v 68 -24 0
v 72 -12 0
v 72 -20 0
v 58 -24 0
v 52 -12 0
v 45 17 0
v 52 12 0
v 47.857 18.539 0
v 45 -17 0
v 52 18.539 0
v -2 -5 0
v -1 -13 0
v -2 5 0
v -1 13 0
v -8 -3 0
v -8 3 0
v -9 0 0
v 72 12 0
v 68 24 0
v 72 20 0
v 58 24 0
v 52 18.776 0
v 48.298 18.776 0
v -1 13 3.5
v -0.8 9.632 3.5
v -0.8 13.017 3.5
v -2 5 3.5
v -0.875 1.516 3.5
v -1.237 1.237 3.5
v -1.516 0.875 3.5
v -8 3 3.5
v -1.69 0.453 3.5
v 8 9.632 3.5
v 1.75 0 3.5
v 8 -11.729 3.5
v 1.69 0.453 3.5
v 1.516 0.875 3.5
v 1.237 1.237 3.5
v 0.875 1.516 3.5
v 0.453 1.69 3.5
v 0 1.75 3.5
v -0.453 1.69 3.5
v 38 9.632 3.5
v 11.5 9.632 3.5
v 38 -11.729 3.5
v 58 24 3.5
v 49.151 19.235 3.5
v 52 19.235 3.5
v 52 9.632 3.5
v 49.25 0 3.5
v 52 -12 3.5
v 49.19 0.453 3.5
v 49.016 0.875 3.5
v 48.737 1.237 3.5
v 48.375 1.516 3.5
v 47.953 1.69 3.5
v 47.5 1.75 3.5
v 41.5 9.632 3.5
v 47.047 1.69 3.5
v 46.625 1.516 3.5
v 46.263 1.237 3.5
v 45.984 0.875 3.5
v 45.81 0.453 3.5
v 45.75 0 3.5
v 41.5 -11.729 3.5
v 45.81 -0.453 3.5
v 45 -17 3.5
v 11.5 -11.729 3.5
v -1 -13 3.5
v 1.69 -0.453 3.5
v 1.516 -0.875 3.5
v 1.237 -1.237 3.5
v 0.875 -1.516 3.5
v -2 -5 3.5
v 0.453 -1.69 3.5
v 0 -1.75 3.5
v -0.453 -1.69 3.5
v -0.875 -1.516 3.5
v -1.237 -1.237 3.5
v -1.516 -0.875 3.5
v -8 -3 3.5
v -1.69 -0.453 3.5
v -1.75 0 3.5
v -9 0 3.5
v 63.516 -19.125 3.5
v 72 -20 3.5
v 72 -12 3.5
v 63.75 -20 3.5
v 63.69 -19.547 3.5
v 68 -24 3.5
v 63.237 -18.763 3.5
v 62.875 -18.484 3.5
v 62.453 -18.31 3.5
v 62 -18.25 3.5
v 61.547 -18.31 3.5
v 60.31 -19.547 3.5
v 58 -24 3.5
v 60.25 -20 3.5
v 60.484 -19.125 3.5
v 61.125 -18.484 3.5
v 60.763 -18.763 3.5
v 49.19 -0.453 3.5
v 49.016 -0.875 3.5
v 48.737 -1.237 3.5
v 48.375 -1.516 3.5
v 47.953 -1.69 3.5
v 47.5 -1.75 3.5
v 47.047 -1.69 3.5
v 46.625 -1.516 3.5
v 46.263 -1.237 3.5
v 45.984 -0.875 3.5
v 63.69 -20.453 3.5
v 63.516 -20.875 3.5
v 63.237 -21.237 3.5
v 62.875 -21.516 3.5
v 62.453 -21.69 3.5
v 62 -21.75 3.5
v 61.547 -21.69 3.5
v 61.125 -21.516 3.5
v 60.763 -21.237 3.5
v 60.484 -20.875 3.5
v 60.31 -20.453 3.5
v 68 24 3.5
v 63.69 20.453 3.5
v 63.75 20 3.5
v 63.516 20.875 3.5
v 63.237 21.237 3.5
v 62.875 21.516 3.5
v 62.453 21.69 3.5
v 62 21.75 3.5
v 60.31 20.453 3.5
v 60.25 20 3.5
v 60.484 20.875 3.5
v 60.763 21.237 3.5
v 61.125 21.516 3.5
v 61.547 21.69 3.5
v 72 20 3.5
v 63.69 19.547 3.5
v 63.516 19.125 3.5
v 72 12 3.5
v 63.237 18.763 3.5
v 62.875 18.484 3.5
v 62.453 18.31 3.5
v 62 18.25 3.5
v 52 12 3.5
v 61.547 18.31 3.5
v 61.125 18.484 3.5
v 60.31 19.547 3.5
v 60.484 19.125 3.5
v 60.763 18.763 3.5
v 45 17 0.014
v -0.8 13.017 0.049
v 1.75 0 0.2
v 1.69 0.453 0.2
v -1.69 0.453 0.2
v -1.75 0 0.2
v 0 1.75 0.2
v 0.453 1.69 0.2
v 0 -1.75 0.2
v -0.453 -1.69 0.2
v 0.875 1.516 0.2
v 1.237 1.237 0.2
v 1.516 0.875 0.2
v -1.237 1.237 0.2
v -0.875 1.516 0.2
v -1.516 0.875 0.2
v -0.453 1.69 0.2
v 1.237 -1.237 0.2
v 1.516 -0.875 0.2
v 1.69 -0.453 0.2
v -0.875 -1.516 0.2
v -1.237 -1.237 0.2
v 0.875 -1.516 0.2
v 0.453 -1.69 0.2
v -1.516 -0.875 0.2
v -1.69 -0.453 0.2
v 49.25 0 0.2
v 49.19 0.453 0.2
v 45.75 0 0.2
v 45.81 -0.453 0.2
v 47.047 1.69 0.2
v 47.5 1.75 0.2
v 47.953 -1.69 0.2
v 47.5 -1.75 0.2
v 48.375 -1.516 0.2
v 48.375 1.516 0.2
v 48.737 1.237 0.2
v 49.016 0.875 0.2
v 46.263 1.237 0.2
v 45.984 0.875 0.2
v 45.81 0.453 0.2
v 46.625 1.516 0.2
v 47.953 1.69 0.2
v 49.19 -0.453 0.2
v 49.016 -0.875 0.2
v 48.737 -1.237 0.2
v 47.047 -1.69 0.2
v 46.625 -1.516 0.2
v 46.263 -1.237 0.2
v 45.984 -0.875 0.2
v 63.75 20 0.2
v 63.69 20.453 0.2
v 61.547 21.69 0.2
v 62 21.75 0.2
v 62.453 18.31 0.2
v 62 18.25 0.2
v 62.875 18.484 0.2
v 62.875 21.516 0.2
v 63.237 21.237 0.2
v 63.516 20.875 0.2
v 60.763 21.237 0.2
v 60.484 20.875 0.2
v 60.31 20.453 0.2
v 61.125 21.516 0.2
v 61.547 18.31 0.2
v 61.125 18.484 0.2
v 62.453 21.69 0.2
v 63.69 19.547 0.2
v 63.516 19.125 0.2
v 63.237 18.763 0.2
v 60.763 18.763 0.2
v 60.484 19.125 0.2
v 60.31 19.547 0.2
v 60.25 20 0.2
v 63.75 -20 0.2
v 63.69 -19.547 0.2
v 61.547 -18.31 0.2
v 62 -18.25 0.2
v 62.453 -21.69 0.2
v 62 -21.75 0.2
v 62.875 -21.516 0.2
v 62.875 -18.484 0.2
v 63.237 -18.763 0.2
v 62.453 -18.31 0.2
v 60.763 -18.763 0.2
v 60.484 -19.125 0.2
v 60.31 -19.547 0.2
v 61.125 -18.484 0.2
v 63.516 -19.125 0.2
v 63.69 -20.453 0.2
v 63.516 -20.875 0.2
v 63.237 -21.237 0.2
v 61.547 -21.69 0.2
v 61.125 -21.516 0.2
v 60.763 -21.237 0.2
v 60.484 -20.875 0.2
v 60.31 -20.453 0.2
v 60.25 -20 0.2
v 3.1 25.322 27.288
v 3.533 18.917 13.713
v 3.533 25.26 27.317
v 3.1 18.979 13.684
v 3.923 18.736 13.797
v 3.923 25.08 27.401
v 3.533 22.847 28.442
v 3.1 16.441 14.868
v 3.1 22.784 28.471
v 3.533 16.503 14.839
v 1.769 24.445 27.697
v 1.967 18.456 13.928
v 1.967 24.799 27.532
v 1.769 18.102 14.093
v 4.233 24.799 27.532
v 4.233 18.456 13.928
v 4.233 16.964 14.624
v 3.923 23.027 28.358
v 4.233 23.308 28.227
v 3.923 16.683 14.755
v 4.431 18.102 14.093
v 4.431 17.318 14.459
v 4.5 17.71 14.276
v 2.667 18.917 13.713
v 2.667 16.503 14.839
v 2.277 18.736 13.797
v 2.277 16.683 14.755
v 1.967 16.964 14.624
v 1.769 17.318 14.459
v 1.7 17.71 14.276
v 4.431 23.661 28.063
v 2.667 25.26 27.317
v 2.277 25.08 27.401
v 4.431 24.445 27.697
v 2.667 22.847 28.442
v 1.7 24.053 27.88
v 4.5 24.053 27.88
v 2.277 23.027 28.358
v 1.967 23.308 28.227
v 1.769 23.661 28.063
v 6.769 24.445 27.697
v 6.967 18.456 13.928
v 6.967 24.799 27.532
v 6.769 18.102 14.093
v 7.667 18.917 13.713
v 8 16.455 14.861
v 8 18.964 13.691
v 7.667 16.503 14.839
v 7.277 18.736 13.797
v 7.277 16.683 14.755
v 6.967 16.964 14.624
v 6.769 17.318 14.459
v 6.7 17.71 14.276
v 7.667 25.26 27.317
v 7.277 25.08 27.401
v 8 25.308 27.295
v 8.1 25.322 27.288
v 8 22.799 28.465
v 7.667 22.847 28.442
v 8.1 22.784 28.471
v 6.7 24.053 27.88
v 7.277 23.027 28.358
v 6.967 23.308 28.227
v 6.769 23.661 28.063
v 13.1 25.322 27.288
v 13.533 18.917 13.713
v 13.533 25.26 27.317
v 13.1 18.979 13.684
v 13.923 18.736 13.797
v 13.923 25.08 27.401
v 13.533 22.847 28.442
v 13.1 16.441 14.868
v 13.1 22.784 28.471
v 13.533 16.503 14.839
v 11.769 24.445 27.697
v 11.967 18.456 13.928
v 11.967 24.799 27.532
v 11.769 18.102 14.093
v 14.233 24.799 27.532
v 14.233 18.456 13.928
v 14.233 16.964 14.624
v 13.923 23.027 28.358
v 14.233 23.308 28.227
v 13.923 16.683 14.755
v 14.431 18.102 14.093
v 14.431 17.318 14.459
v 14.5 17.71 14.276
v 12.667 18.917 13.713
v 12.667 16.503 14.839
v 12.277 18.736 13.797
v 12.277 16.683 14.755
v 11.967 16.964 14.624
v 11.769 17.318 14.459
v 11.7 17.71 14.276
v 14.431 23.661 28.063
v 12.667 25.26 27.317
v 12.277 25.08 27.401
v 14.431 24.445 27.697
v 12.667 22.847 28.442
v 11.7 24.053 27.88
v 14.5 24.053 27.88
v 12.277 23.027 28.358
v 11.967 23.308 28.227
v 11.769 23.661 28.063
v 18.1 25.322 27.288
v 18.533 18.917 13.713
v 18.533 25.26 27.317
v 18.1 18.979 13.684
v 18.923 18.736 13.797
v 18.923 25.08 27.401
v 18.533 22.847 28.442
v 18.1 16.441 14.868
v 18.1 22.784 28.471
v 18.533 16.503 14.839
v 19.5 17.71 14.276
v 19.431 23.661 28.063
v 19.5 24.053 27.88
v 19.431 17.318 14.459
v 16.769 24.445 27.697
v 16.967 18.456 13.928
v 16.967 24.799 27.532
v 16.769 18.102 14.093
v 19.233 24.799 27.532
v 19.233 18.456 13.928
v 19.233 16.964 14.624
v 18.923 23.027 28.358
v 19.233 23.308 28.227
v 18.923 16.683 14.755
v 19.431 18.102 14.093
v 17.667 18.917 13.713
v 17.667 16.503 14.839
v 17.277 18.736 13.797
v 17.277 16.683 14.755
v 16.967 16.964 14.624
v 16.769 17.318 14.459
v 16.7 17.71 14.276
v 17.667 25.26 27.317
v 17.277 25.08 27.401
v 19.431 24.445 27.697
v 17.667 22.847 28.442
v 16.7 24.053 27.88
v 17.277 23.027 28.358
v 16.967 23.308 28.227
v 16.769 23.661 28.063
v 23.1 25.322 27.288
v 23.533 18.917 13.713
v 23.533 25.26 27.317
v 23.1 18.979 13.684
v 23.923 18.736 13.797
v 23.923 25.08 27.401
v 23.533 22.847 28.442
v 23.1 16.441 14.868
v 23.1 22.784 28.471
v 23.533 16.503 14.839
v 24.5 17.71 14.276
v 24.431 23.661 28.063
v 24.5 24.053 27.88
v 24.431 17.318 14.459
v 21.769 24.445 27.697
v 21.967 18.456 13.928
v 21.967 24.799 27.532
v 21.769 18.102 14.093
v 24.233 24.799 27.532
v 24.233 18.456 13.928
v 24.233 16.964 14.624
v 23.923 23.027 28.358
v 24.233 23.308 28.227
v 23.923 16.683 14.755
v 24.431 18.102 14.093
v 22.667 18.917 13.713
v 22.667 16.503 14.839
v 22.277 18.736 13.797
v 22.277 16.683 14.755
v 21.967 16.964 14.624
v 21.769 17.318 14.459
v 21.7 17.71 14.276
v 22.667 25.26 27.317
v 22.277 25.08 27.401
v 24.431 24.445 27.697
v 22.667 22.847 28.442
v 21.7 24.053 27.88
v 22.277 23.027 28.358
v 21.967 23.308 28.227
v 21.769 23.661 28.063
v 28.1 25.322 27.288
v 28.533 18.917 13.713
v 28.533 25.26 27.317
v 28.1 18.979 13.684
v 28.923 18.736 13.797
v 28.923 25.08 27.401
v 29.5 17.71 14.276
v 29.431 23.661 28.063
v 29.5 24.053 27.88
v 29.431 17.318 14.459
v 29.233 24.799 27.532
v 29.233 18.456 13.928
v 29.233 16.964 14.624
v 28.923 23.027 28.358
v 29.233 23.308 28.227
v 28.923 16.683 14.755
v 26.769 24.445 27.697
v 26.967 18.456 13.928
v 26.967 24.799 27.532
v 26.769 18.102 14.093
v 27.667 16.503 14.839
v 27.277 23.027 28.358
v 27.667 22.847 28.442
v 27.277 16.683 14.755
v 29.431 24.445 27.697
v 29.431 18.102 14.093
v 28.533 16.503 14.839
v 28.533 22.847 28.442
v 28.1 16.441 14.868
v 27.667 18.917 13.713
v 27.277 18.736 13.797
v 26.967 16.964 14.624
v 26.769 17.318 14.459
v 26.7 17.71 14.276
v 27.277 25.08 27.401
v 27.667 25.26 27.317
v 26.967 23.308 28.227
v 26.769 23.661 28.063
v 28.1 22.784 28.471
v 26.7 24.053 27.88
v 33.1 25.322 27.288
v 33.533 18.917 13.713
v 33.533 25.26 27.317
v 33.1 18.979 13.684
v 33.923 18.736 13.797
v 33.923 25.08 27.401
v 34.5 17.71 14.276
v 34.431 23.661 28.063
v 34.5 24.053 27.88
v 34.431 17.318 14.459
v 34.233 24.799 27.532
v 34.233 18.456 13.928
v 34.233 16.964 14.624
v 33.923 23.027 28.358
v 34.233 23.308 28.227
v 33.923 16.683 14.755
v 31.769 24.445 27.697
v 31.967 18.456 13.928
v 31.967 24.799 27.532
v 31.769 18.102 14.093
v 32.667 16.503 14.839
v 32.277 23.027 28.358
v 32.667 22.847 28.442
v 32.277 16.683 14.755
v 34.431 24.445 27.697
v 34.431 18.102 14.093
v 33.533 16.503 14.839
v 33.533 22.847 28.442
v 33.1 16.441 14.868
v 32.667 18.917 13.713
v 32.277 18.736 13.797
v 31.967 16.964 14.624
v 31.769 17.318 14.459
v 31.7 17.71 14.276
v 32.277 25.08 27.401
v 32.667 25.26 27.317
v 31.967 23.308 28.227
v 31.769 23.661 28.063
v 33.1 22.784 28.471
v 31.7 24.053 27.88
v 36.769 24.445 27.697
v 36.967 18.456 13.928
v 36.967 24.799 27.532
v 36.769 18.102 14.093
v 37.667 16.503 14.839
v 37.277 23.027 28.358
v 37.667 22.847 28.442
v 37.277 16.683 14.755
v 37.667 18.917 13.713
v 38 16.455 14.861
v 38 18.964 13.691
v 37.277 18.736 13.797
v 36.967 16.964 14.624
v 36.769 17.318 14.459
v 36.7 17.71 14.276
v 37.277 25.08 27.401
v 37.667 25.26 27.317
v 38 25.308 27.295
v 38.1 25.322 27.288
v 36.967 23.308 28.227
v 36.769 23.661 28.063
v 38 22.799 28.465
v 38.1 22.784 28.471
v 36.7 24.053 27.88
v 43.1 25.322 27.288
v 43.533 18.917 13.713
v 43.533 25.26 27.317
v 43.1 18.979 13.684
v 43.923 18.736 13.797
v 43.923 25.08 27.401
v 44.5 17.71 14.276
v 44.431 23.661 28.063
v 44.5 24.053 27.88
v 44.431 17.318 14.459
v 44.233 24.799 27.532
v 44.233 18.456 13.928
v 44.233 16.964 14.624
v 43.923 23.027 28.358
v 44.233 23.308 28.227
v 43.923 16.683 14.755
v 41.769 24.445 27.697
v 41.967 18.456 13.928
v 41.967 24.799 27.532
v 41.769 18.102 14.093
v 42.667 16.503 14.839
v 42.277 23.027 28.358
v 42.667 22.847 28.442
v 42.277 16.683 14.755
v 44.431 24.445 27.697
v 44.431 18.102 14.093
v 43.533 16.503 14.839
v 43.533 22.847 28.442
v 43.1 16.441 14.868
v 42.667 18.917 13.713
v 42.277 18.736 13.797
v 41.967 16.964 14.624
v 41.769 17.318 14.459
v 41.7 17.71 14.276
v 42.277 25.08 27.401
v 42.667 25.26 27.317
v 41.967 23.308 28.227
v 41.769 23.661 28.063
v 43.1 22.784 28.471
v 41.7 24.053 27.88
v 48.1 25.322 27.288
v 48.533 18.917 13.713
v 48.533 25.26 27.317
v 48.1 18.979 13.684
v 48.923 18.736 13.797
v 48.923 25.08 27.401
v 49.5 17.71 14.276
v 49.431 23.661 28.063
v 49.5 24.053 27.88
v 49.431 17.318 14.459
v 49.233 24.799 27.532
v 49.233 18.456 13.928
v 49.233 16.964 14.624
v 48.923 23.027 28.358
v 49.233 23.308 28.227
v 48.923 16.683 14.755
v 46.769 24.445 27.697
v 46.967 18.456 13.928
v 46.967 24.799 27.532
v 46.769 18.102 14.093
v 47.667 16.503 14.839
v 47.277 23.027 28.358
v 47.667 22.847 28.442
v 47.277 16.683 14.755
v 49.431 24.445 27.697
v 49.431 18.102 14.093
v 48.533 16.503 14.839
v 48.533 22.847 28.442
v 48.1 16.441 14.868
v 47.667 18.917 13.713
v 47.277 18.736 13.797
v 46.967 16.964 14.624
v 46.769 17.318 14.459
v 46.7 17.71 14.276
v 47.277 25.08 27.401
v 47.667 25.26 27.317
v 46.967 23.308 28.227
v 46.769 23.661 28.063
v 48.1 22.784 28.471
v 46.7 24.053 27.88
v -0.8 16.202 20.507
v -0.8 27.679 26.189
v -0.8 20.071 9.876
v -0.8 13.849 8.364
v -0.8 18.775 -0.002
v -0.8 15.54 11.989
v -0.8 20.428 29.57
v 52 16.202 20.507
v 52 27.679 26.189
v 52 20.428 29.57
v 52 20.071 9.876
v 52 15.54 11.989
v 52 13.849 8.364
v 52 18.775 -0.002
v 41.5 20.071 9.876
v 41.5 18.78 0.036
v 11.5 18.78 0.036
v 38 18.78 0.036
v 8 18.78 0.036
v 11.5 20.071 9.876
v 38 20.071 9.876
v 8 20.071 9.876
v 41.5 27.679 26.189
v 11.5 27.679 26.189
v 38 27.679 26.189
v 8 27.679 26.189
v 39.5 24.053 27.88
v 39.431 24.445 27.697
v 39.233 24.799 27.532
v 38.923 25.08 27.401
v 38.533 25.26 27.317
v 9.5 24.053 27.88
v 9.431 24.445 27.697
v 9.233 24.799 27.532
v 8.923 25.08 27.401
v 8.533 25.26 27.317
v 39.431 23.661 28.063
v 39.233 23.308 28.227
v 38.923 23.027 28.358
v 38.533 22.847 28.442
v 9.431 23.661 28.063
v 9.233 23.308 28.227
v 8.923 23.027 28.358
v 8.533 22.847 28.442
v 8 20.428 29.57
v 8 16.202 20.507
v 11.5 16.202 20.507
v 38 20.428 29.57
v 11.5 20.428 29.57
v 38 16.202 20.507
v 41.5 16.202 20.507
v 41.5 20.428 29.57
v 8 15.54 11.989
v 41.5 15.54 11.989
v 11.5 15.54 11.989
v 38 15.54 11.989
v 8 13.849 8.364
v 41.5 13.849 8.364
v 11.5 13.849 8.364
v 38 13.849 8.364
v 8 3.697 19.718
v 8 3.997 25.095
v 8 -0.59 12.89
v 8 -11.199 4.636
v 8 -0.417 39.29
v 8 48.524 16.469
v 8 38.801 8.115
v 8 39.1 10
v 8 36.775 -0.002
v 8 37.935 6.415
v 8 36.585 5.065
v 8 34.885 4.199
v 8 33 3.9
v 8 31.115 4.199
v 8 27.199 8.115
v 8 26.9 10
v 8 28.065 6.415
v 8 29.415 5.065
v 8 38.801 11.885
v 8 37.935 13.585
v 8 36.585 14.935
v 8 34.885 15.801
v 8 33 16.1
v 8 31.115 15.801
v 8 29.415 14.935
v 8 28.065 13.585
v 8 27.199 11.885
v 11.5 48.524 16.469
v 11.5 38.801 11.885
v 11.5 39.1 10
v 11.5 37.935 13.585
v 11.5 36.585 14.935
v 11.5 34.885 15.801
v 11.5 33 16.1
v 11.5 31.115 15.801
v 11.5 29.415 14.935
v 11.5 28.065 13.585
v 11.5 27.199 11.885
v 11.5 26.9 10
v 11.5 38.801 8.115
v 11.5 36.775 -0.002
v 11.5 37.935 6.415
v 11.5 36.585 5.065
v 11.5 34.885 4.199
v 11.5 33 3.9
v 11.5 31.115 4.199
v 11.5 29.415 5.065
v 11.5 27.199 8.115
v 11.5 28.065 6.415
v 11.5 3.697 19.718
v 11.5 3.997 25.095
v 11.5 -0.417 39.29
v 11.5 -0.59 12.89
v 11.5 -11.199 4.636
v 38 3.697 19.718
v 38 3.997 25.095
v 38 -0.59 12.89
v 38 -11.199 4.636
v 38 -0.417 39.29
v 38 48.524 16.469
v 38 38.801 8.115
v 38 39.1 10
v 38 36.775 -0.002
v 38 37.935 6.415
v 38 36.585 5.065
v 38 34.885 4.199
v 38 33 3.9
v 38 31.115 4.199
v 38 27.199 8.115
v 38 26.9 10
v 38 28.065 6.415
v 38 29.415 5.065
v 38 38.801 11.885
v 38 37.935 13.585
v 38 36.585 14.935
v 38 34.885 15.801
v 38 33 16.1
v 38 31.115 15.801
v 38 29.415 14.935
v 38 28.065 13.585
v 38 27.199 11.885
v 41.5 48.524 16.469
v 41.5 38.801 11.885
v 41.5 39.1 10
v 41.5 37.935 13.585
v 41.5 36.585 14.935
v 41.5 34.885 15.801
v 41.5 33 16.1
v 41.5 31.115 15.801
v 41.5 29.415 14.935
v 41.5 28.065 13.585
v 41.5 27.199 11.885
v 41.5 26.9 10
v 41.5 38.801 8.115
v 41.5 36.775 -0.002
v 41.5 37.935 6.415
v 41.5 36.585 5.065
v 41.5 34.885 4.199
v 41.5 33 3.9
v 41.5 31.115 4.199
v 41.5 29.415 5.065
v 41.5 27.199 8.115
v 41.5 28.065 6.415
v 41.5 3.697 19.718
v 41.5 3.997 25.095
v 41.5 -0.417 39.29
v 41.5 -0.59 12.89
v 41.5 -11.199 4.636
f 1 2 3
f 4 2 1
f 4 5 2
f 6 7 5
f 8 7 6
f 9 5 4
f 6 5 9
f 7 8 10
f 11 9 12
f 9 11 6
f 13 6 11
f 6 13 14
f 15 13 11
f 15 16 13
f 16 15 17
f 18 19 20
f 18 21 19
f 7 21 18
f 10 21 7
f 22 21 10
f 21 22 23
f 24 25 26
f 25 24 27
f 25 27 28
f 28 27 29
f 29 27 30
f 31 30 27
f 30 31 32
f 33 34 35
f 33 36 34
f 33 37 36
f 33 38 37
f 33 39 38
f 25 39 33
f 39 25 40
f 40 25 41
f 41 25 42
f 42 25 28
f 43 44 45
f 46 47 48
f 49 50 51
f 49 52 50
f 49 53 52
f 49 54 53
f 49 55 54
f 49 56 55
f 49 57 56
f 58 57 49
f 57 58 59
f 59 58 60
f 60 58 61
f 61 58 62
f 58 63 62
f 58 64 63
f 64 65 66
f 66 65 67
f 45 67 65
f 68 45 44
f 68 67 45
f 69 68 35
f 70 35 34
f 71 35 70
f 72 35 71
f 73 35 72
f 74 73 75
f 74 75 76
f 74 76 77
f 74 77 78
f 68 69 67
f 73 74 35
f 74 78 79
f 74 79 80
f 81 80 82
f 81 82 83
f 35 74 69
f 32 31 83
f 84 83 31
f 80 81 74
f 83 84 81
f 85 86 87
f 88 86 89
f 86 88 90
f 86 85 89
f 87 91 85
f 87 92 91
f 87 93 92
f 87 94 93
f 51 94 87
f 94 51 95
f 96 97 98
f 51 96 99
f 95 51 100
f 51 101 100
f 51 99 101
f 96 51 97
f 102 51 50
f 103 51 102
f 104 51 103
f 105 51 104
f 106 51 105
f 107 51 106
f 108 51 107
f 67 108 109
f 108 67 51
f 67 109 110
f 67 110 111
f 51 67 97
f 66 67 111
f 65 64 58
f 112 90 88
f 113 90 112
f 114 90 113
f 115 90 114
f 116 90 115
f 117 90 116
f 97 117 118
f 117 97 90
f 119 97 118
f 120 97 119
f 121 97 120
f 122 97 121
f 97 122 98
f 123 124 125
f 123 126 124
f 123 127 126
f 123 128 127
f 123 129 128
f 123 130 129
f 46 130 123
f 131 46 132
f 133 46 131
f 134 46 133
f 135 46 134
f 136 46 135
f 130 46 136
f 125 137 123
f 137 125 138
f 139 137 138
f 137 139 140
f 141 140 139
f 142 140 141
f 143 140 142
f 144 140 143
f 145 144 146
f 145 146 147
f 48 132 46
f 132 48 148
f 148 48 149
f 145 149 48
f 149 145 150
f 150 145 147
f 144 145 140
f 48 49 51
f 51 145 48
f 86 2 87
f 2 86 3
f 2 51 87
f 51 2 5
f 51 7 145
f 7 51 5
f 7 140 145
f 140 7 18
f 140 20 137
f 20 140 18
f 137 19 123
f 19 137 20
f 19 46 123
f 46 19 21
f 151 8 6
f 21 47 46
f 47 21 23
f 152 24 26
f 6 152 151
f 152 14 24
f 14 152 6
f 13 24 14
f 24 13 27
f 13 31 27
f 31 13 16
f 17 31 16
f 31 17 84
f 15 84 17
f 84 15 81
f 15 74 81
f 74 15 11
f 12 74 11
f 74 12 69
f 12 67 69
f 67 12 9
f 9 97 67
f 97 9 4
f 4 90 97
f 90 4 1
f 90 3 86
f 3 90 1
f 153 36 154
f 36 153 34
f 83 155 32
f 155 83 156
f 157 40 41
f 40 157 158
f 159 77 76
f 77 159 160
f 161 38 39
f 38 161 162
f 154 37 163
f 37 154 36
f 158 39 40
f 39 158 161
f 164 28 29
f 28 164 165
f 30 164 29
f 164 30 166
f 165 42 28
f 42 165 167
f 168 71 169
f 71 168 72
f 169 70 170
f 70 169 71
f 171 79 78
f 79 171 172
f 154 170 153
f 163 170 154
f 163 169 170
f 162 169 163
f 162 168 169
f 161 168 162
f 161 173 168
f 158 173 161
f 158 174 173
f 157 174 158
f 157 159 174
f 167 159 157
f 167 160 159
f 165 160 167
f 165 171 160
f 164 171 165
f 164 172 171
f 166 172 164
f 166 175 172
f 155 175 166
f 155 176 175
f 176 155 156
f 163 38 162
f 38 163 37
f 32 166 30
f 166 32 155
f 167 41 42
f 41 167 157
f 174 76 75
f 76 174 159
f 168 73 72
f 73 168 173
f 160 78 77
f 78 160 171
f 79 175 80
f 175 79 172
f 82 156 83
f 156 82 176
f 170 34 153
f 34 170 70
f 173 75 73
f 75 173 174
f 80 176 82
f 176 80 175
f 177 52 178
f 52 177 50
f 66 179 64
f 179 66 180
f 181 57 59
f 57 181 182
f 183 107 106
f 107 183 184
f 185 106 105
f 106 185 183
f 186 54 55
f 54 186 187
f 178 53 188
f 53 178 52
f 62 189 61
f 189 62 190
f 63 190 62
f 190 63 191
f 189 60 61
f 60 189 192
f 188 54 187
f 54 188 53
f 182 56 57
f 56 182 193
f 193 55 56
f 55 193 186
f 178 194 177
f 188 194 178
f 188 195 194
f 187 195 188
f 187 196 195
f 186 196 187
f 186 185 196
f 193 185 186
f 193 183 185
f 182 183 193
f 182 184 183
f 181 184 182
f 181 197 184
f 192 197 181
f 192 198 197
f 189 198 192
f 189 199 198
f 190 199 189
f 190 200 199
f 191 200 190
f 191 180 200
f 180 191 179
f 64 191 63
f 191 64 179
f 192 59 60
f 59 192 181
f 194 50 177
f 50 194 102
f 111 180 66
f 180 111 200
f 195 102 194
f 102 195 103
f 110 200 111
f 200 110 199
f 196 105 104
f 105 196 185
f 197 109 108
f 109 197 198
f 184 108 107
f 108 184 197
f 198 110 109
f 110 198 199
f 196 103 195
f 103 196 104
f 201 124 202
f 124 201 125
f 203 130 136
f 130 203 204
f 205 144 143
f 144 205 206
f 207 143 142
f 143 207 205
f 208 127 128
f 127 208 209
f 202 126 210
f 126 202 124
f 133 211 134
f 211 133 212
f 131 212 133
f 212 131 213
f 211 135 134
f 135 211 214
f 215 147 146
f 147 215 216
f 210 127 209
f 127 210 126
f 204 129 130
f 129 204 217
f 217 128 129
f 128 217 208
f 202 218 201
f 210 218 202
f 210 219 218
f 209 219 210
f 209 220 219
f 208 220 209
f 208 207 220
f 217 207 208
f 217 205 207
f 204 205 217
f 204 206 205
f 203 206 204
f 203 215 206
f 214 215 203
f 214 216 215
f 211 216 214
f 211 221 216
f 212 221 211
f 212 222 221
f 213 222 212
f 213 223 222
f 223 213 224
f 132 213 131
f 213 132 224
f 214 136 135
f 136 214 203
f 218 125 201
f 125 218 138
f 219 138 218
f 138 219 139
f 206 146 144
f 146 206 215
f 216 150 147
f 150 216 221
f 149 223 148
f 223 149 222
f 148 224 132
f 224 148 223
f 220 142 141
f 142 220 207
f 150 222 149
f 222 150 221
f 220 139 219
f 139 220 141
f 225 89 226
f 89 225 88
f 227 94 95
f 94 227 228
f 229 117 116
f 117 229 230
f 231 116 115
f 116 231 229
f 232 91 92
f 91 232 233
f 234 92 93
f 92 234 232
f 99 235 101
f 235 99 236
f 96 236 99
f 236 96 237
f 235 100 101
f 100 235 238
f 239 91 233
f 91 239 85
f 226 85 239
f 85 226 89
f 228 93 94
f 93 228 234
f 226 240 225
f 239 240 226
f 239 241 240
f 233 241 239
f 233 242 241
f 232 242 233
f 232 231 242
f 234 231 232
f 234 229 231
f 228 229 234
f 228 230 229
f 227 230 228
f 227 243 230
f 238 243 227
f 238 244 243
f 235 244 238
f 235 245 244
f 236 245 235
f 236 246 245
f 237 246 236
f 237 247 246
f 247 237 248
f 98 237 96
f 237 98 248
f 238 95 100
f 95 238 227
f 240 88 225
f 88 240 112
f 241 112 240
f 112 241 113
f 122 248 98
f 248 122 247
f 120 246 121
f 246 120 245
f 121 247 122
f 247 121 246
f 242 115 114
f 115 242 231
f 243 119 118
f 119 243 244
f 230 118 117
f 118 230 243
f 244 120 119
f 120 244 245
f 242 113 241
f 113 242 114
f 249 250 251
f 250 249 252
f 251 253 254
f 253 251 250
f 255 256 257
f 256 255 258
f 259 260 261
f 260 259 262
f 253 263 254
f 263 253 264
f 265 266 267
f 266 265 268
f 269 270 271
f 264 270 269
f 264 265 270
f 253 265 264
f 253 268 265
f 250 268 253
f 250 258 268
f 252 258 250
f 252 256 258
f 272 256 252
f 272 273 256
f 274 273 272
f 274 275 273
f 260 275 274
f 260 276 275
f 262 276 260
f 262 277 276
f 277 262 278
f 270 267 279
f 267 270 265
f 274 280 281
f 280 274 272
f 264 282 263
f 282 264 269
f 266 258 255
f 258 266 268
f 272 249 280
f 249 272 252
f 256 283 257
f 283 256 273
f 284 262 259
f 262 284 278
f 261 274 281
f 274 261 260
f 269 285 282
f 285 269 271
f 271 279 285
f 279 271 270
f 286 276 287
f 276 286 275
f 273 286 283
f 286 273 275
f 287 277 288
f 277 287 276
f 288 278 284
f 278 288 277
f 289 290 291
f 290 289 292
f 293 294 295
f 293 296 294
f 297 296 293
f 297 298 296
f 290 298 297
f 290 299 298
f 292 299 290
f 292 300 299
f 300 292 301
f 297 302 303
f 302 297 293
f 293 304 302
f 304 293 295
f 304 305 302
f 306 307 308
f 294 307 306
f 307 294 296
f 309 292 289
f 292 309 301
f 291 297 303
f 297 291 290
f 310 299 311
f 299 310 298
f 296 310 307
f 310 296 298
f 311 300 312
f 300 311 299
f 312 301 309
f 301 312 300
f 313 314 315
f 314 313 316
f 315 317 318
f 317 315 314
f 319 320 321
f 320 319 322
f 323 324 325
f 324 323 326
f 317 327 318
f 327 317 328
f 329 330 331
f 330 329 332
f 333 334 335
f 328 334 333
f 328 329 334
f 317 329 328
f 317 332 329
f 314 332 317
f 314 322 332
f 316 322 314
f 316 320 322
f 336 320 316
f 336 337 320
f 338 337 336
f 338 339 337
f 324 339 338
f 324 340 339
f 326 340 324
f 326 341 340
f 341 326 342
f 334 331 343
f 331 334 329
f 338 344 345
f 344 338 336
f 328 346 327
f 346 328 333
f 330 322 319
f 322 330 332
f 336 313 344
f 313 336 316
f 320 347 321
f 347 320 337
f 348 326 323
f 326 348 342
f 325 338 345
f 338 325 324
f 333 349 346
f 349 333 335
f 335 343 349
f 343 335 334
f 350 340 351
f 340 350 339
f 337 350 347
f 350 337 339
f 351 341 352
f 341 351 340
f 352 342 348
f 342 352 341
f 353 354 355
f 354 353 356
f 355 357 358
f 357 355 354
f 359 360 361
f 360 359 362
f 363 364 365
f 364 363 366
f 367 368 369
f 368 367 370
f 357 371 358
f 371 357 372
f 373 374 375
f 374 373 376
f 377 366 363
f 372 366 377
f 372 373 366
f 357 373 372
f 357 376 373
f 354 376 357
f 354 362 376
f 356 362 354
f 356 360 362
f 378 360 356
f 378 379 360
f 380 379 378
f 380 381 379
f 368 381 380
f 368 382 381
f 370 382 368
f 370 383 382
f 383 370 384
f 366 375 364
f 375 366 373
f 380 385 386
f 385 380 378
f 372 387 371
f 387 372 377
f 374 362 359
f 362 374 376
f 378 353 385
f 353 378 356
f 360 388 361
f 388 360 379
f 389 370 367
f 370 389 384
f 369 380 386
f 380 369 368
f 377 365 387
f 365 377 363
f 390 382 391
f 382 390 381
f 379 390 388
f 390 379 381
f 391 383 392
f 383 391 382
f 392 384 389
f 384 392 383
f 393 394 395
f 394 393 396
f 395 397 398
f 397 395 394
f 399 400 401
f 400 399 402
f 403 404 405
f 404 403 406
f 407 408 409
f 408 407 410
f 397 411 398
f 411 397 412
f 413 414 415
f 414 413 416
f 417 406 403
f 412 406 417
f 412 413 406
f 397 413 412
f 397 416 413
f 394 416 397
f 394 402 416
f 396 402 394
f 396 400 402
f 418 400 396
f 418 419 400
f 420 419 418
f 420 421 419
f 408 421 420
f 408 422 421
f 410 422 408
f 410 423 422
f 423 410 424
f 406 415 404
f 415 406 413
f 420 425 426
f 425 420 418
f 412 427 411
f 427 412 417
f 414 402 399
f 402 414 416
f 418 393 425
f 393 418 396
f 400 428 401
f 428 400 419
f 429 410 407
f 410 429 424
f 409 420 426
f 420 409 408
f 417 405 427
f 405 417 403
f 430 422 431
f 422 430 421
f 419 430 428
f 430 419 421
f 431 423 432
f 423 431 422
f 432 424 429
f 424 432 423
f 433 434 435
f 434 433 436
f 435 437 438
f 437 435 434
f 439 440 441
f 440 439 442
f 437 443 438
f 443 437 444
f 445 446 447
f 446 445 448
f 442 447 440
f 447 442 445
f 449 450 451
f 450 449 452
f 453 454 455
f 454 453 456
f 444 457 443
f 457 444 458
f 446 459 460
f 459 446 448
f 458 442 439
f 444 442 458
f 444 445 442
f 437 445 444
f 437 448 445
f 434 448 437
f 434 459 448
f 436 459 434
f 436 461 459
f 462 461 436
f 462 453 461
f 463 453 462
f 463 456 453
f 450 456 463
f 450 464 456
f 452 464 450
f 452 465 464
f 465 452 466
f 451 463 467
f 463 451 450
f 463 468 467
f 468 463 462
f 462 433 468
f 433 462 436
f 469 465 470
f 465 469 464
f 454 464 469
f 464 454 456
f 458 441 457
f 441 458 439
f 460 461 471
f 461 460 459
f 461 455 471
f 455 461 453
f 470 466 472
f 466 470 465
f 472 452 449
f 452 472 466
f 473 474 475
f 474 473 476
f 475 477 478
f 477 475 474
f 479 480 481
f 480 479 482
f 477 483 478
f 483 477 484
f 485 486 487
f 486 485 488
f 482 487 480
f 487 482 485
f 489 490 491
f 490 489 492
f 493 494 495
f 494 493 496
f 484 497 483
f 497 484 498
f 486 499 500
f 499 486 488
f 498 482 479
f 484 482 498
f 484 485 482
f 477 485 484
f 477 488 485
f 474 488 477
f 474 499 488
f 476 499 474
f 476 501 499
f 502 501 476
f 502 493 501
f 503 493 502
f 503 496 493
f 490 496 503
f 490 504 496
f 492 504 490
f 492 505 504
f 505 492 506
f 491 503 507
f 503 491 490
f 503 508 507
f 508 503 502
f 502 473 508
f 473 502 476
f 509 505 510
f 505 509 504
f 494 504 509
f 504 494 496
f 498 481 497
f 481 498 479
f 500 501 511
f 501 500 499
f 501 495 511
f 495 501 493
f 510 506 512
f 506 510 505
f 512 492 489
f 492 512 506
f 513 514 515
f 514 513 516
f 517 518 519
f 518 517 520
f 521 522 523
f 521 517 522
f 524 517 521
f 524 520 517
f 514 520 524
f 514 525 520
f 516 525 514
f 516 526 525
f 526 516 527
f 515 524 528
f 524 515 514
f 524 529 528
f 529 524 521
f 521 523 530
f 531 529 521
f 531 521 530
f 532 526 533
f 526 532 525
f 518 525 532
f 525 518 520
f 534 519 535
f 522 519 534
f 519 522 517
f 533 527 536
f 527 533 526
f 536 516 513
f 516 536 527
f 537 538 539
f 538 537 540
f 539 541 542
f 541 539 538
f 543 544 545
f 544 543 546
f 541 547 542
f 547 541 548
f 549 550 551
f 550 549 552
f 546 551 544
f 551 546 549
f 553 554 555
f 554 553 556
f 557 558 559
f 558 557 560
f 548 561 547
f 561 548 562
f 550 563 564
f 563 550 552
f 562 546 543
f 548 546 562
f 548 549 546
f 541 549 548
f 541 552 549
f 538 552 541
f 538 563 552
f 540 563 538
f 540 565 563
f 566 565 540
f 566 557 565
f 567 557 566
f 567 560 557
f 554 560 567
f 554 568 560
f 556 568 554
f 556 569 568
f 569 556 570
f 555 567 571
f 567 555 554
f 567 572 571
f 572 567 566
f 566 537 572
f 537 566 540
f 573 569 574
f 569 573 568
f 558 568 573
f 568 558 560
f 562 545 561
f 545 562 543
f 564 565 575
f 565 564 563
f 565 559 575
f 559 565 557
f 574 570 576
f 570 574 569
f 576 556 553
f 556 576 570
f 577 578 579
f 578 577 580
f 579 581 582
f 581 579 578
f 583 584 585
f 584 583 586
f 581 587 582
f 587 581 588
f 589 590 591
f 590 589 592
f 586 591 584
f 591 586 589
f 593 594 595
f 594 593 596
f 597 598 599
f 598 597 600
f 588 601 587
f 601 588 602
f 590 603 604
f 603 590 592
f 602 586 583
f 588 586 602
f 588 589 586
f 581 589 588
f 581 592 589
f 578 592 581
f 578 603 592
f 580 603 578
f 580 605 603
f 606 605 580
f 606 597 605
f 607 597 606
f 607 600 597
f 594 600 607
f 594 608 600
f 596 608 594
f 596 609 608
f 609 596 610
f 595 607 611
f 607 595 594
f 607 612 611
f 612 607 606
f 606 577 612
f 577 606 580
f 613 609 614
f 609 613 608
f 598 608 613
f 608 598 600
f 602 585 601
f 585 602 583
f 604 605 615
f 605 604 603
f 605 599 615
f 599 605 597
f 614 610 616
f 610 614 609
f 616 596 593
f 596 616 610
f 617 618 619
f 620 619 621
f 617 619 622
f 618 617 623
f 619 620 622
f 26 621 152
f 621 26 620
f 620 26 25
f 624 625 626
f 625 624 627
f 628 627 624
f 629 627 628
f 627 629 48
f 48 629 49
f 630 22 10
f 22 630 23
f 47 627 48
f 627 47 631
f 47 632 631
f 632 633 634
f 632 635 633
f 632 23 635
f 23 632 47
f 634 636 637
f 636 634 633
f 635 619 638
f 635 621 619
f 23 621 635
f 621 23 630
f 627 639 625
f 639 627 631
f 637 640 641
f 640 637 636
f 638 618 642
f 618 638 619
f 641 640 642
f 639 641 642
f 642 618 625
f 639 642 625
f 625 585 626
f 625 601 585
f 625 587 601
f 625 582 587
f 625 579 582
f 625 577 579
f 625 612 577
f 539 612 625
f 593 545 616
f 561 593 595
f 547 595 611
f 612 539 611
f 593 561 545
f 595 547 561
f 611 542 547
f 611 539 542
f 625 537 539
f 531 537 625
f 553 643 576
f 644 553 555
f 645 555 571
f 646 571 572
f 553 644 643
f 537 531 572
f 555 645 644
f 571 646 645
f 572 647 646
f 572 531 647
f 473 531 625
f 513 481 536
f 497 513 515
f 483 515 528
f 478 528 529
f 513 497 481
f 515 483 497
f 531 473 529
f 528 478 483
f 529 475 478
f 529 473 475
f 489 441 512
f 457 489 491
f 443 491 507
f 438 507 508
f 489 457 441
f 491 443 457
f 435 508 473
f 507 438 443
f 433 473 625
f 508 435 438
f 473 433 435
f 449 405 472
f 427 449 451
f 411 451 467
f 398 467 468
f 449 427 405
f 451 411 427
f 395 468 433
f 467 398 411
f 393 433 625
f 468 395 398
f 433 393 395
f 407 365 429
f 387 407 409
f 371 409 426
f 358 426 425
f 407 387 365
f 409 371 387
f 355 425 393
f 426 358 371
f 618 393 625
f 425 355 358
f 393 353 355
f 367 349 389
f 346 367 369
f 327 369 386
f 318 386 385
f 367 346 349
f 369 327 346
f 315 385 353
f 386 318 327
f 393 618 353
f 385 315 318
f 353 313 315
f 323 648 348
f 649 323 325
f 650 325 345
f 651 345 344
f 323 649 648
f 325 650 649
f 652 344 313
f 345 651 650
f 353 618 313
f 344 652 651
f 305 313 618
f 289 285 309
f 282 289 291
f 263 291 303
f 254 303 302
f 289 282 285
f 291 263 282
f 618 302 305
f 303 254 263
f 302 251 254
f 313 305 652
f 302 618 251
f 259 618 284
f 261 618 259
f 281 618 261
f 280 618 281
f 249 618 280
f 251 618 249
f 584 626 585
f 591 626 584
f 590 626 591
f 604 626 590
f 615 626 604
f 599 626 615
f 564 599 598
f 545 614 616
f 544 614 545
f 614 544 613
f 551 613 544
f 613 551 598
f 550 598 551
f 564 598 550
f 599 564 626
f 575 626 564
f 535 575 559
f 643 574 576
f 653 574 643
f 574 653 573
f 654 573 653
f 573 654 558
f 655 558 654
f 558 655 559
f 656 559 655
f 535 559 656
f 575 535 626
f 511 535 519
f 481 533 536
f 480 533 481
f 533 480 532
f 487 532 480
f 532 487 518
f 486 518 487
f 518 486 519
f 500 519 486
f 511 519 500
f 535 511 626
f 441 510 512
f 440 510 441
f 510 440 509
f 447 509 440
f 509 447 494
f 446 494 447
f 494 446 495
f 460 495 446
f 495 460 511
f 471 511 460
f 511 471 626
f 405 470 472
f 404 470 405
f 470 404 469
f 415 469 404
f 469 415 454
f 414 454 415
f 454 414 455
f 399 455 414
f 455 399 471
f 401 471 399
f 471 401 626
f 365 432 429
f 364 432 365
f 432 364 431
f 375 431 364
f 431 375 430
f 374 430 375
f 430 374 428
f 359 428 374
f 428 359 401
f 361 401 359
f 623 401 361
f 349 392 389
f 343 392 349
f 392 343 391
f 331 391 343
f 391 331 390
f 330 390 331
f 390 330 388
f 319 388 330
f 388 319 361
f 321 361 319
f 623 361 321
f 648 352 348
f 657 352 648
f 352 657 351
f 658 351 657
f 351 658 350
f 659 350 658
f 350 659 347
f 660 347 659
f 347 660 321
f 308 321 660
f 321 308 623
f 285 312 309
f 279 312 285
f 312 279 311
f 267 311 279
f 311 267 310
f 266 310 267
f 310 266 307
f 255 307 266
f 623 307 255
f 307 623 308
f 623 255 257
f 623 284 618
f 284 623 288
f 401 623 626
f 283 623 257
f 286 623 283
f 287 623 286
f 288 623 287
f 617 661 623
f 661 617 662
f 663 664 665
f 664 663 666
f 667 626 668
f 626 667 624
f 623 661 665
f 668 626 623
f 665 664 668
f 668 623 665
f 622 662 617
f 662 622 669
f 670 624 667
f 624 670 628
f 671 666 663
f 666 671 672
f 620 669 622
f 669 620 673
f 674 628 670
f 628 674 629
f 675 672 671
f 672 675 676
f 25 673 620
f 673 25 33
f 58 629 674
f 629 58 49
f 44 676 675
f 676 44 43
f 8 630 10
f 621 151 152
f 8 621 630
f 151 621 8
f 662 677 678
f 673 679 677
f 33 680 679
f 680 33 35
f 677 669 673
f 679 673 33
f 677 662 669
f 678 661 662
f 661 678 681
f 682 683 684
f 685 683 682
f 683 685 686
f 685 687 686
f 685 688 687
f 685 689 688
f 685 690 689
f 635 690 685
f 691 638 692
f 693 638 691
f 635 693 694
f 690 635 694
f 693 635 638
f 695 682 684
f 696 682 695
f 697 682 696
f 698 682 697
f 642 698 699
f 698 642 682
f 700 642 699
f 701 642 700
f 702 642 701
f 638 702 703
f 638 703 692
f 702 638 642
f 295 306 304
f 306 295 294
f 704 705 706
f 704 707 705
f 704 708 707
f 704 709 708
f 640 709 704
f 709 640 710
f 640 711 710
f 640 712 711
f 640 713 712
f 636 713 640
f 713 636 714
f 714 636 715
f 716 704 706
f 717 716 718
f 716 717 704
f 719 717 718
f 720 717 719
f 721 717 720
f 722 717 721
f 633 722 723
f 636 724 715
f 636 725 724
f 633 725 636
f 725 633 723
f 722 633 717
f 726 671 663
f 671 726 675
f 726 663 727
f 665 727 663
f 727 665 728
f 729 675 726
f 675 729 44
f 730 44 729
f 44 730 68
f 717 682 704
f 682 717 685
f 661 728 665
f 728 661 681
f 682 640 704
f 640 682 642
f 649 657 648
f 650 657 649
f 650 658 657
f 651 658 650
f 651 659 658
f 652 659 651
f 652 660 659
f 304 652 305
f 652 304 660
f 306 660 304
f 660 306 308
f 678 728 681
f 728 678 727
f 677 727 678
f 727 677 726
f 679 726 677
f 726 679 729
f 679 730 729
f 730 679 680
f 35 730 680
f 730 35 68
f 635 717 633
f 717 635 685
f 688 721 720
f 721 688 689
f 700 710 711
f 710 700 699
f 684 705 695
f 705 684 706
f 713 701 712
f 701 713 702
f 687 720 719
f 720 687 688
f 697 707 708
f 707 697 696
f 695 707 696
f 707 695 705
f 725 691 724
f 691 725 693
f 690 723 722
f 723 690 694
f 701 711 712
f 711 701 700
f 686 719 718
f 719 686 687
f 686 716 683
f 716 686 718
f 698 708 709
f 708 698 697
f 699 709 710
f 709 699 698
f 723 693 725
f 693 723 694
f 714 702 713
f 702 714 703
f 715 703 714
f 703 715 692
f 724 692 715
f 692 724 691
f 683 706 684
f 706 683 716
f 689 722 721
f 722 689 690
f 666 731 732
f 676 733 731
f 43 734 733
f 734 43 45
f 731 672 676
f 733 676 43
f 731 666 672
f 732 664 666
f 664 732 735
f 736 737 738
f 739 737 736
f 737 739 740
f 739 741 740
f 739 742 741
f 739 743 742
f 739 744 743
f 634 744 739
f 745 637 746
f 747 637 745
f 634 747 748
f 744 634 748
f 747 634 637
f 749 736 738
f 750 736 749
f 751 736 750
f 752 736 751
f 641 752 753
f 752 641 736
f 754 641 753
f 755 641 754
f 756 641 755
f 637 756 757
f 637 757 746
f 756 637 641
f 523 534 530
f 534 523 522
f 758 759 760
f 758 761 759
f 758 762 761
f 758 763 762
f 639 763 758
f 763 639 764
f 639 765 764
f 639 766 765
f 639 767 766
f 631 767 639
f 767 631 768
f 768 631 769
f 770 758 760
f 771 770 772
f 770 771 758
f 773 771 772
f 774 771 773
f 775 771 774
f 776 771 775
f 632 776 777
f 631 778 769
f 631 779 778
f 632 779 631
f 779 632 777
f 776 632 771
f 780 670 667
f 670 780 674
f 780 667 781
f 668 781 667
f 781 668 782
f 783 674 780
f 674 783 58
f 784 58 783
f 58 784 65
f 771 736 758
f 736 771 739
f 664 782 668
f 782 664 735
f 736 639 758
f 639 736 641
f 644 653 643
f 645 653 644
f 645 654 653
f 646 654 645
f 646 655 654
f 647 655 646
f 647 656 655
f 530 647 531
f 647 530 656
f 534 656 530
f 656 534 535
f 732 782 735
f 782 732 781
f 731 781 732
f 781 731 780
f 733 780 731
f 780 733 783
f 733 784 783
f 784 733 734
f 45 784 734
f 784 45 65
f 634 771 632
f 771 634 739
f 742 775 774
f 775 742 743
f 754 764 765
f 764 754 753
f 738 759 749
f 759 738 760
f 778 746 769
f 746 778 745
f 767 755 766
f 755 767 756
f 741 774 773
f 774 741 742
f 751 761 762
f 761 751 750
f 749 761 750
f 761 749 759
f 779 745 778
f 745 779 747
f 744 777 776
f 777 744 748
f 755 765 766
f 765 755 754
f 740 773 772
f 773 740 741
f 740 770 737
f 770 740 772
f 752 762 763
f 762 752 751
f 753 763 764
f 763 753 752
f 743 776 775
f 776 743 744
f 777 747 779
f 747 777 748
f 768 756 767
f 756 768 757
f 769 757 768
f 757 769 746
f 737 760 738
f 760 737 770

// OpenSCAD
// file: 210820-leg-support.scad
module legsupport(x=0,y=0,z=0,l=4,r = 25)
{
    p = 18;
    q = -20;
    holed = 12.2;

    difference() {
        union() {
            translate([x+l/2,y,z]) rotate([90,r,90])
            color("yellow", 50) 
            linear_extrude(height = l, center = true, convexity = 10, twist = 0)
            {
                polygon(points=[[3+p*cos(r),2.5+p*sin(r)],[23,30],[-31,30],[-21,19],[-19,14],[-20,6],[-8+q*cos(r),5-2.512+q*sin(r)],[-8+q*cos(r),-2.512+q*sin(r)]]);
            }
        }

        union() {
            translate([x+l/2,y+18,z+11]) rotate([90,90,90]) color ("red"){cylinder(h=l+0.02, d=holed, $fn=20,center=true); }
        }
    }
}
// file: 210822-leg-profile.scad
module legprofile(x=0,y=0,z=0,l=40,r = 0)
{
    holed = 2.8;
    depth = 15;
    movey = 30;
    cent = -4;

    translate([x+l/2,y,z]) rotate([90, 25,90])
    union() {
        difference() {
            color("blue", 50) 
            linear_extrude(height = l, center = true, convexity = 10, twist = 0)
            {
                polygon(points=[[3,2.5],[0,12],[0,30],[-8,30],[-8,20],[-5,12],[-5,8],[-8,-2.512]]);
            }
            
            for (zz = [0:9]) {
                translate([cent,movey-depth/2, zz*5-22.5]) rotate([90,0,0]) color ("red") {cylinder(h=depth+0.02, d=holed, $fn=20,center=true); }
            }
        }
    }
}
// file: 210820-leg-bottom.scad
module bottom(x=0,y=0,z=0,thick=3.5, holed=3.5)
{
    difference() 
    {
        translate([x,y,z+thick/2]) 
        color("green", 50) 
        linear_extrude(height = thick, center = true, convexity = 10, twist = 0)
        {
            polygon(points=[[-9,0],[-8,3],[-2,5],[-1,13],[45,17],[58,24],[68,24],[72,20],[72,12],[52,12],[52,-12],[72,-12],[72,-20],[68,-24],[58,-24],[45,-17],[-1,-13],[-2,-5],[-8,-3]]);
        }
        translate([0,0,z+thick/2+0.2]) cylinder(thick, d=holed, $fn=24, center=true);
        translate([47.5,0,z+thick/2+0.2]) cylinder(thick, d=holed, $fn=24, center=true);
        translate([47.5+14.5,20,z+thick/2+0.2]) cylinder(thick, d=holed, $fn=24, center=true);
        translate([47.5+14.5,-20,z+thick/2+0.2]) cylinder(thick, d=holed, $fn=24, center=true);
    }
}
// main file
include <210820-leg-bottom.scad>;
include <210822-leg-profile.scad>;
include <210820-leg-support.scad>;

bottom_thick = 3.5;

bottom(0,0,0, bottom_thick);

xpos = -0.8;
ypos = 15;
zpos = -1;

legprofile(xpos,ypos,zpos,52.8);

legsupport(8,ypos,zpos,3.5);
legsupport(38,ypos,zpos,3.5);
